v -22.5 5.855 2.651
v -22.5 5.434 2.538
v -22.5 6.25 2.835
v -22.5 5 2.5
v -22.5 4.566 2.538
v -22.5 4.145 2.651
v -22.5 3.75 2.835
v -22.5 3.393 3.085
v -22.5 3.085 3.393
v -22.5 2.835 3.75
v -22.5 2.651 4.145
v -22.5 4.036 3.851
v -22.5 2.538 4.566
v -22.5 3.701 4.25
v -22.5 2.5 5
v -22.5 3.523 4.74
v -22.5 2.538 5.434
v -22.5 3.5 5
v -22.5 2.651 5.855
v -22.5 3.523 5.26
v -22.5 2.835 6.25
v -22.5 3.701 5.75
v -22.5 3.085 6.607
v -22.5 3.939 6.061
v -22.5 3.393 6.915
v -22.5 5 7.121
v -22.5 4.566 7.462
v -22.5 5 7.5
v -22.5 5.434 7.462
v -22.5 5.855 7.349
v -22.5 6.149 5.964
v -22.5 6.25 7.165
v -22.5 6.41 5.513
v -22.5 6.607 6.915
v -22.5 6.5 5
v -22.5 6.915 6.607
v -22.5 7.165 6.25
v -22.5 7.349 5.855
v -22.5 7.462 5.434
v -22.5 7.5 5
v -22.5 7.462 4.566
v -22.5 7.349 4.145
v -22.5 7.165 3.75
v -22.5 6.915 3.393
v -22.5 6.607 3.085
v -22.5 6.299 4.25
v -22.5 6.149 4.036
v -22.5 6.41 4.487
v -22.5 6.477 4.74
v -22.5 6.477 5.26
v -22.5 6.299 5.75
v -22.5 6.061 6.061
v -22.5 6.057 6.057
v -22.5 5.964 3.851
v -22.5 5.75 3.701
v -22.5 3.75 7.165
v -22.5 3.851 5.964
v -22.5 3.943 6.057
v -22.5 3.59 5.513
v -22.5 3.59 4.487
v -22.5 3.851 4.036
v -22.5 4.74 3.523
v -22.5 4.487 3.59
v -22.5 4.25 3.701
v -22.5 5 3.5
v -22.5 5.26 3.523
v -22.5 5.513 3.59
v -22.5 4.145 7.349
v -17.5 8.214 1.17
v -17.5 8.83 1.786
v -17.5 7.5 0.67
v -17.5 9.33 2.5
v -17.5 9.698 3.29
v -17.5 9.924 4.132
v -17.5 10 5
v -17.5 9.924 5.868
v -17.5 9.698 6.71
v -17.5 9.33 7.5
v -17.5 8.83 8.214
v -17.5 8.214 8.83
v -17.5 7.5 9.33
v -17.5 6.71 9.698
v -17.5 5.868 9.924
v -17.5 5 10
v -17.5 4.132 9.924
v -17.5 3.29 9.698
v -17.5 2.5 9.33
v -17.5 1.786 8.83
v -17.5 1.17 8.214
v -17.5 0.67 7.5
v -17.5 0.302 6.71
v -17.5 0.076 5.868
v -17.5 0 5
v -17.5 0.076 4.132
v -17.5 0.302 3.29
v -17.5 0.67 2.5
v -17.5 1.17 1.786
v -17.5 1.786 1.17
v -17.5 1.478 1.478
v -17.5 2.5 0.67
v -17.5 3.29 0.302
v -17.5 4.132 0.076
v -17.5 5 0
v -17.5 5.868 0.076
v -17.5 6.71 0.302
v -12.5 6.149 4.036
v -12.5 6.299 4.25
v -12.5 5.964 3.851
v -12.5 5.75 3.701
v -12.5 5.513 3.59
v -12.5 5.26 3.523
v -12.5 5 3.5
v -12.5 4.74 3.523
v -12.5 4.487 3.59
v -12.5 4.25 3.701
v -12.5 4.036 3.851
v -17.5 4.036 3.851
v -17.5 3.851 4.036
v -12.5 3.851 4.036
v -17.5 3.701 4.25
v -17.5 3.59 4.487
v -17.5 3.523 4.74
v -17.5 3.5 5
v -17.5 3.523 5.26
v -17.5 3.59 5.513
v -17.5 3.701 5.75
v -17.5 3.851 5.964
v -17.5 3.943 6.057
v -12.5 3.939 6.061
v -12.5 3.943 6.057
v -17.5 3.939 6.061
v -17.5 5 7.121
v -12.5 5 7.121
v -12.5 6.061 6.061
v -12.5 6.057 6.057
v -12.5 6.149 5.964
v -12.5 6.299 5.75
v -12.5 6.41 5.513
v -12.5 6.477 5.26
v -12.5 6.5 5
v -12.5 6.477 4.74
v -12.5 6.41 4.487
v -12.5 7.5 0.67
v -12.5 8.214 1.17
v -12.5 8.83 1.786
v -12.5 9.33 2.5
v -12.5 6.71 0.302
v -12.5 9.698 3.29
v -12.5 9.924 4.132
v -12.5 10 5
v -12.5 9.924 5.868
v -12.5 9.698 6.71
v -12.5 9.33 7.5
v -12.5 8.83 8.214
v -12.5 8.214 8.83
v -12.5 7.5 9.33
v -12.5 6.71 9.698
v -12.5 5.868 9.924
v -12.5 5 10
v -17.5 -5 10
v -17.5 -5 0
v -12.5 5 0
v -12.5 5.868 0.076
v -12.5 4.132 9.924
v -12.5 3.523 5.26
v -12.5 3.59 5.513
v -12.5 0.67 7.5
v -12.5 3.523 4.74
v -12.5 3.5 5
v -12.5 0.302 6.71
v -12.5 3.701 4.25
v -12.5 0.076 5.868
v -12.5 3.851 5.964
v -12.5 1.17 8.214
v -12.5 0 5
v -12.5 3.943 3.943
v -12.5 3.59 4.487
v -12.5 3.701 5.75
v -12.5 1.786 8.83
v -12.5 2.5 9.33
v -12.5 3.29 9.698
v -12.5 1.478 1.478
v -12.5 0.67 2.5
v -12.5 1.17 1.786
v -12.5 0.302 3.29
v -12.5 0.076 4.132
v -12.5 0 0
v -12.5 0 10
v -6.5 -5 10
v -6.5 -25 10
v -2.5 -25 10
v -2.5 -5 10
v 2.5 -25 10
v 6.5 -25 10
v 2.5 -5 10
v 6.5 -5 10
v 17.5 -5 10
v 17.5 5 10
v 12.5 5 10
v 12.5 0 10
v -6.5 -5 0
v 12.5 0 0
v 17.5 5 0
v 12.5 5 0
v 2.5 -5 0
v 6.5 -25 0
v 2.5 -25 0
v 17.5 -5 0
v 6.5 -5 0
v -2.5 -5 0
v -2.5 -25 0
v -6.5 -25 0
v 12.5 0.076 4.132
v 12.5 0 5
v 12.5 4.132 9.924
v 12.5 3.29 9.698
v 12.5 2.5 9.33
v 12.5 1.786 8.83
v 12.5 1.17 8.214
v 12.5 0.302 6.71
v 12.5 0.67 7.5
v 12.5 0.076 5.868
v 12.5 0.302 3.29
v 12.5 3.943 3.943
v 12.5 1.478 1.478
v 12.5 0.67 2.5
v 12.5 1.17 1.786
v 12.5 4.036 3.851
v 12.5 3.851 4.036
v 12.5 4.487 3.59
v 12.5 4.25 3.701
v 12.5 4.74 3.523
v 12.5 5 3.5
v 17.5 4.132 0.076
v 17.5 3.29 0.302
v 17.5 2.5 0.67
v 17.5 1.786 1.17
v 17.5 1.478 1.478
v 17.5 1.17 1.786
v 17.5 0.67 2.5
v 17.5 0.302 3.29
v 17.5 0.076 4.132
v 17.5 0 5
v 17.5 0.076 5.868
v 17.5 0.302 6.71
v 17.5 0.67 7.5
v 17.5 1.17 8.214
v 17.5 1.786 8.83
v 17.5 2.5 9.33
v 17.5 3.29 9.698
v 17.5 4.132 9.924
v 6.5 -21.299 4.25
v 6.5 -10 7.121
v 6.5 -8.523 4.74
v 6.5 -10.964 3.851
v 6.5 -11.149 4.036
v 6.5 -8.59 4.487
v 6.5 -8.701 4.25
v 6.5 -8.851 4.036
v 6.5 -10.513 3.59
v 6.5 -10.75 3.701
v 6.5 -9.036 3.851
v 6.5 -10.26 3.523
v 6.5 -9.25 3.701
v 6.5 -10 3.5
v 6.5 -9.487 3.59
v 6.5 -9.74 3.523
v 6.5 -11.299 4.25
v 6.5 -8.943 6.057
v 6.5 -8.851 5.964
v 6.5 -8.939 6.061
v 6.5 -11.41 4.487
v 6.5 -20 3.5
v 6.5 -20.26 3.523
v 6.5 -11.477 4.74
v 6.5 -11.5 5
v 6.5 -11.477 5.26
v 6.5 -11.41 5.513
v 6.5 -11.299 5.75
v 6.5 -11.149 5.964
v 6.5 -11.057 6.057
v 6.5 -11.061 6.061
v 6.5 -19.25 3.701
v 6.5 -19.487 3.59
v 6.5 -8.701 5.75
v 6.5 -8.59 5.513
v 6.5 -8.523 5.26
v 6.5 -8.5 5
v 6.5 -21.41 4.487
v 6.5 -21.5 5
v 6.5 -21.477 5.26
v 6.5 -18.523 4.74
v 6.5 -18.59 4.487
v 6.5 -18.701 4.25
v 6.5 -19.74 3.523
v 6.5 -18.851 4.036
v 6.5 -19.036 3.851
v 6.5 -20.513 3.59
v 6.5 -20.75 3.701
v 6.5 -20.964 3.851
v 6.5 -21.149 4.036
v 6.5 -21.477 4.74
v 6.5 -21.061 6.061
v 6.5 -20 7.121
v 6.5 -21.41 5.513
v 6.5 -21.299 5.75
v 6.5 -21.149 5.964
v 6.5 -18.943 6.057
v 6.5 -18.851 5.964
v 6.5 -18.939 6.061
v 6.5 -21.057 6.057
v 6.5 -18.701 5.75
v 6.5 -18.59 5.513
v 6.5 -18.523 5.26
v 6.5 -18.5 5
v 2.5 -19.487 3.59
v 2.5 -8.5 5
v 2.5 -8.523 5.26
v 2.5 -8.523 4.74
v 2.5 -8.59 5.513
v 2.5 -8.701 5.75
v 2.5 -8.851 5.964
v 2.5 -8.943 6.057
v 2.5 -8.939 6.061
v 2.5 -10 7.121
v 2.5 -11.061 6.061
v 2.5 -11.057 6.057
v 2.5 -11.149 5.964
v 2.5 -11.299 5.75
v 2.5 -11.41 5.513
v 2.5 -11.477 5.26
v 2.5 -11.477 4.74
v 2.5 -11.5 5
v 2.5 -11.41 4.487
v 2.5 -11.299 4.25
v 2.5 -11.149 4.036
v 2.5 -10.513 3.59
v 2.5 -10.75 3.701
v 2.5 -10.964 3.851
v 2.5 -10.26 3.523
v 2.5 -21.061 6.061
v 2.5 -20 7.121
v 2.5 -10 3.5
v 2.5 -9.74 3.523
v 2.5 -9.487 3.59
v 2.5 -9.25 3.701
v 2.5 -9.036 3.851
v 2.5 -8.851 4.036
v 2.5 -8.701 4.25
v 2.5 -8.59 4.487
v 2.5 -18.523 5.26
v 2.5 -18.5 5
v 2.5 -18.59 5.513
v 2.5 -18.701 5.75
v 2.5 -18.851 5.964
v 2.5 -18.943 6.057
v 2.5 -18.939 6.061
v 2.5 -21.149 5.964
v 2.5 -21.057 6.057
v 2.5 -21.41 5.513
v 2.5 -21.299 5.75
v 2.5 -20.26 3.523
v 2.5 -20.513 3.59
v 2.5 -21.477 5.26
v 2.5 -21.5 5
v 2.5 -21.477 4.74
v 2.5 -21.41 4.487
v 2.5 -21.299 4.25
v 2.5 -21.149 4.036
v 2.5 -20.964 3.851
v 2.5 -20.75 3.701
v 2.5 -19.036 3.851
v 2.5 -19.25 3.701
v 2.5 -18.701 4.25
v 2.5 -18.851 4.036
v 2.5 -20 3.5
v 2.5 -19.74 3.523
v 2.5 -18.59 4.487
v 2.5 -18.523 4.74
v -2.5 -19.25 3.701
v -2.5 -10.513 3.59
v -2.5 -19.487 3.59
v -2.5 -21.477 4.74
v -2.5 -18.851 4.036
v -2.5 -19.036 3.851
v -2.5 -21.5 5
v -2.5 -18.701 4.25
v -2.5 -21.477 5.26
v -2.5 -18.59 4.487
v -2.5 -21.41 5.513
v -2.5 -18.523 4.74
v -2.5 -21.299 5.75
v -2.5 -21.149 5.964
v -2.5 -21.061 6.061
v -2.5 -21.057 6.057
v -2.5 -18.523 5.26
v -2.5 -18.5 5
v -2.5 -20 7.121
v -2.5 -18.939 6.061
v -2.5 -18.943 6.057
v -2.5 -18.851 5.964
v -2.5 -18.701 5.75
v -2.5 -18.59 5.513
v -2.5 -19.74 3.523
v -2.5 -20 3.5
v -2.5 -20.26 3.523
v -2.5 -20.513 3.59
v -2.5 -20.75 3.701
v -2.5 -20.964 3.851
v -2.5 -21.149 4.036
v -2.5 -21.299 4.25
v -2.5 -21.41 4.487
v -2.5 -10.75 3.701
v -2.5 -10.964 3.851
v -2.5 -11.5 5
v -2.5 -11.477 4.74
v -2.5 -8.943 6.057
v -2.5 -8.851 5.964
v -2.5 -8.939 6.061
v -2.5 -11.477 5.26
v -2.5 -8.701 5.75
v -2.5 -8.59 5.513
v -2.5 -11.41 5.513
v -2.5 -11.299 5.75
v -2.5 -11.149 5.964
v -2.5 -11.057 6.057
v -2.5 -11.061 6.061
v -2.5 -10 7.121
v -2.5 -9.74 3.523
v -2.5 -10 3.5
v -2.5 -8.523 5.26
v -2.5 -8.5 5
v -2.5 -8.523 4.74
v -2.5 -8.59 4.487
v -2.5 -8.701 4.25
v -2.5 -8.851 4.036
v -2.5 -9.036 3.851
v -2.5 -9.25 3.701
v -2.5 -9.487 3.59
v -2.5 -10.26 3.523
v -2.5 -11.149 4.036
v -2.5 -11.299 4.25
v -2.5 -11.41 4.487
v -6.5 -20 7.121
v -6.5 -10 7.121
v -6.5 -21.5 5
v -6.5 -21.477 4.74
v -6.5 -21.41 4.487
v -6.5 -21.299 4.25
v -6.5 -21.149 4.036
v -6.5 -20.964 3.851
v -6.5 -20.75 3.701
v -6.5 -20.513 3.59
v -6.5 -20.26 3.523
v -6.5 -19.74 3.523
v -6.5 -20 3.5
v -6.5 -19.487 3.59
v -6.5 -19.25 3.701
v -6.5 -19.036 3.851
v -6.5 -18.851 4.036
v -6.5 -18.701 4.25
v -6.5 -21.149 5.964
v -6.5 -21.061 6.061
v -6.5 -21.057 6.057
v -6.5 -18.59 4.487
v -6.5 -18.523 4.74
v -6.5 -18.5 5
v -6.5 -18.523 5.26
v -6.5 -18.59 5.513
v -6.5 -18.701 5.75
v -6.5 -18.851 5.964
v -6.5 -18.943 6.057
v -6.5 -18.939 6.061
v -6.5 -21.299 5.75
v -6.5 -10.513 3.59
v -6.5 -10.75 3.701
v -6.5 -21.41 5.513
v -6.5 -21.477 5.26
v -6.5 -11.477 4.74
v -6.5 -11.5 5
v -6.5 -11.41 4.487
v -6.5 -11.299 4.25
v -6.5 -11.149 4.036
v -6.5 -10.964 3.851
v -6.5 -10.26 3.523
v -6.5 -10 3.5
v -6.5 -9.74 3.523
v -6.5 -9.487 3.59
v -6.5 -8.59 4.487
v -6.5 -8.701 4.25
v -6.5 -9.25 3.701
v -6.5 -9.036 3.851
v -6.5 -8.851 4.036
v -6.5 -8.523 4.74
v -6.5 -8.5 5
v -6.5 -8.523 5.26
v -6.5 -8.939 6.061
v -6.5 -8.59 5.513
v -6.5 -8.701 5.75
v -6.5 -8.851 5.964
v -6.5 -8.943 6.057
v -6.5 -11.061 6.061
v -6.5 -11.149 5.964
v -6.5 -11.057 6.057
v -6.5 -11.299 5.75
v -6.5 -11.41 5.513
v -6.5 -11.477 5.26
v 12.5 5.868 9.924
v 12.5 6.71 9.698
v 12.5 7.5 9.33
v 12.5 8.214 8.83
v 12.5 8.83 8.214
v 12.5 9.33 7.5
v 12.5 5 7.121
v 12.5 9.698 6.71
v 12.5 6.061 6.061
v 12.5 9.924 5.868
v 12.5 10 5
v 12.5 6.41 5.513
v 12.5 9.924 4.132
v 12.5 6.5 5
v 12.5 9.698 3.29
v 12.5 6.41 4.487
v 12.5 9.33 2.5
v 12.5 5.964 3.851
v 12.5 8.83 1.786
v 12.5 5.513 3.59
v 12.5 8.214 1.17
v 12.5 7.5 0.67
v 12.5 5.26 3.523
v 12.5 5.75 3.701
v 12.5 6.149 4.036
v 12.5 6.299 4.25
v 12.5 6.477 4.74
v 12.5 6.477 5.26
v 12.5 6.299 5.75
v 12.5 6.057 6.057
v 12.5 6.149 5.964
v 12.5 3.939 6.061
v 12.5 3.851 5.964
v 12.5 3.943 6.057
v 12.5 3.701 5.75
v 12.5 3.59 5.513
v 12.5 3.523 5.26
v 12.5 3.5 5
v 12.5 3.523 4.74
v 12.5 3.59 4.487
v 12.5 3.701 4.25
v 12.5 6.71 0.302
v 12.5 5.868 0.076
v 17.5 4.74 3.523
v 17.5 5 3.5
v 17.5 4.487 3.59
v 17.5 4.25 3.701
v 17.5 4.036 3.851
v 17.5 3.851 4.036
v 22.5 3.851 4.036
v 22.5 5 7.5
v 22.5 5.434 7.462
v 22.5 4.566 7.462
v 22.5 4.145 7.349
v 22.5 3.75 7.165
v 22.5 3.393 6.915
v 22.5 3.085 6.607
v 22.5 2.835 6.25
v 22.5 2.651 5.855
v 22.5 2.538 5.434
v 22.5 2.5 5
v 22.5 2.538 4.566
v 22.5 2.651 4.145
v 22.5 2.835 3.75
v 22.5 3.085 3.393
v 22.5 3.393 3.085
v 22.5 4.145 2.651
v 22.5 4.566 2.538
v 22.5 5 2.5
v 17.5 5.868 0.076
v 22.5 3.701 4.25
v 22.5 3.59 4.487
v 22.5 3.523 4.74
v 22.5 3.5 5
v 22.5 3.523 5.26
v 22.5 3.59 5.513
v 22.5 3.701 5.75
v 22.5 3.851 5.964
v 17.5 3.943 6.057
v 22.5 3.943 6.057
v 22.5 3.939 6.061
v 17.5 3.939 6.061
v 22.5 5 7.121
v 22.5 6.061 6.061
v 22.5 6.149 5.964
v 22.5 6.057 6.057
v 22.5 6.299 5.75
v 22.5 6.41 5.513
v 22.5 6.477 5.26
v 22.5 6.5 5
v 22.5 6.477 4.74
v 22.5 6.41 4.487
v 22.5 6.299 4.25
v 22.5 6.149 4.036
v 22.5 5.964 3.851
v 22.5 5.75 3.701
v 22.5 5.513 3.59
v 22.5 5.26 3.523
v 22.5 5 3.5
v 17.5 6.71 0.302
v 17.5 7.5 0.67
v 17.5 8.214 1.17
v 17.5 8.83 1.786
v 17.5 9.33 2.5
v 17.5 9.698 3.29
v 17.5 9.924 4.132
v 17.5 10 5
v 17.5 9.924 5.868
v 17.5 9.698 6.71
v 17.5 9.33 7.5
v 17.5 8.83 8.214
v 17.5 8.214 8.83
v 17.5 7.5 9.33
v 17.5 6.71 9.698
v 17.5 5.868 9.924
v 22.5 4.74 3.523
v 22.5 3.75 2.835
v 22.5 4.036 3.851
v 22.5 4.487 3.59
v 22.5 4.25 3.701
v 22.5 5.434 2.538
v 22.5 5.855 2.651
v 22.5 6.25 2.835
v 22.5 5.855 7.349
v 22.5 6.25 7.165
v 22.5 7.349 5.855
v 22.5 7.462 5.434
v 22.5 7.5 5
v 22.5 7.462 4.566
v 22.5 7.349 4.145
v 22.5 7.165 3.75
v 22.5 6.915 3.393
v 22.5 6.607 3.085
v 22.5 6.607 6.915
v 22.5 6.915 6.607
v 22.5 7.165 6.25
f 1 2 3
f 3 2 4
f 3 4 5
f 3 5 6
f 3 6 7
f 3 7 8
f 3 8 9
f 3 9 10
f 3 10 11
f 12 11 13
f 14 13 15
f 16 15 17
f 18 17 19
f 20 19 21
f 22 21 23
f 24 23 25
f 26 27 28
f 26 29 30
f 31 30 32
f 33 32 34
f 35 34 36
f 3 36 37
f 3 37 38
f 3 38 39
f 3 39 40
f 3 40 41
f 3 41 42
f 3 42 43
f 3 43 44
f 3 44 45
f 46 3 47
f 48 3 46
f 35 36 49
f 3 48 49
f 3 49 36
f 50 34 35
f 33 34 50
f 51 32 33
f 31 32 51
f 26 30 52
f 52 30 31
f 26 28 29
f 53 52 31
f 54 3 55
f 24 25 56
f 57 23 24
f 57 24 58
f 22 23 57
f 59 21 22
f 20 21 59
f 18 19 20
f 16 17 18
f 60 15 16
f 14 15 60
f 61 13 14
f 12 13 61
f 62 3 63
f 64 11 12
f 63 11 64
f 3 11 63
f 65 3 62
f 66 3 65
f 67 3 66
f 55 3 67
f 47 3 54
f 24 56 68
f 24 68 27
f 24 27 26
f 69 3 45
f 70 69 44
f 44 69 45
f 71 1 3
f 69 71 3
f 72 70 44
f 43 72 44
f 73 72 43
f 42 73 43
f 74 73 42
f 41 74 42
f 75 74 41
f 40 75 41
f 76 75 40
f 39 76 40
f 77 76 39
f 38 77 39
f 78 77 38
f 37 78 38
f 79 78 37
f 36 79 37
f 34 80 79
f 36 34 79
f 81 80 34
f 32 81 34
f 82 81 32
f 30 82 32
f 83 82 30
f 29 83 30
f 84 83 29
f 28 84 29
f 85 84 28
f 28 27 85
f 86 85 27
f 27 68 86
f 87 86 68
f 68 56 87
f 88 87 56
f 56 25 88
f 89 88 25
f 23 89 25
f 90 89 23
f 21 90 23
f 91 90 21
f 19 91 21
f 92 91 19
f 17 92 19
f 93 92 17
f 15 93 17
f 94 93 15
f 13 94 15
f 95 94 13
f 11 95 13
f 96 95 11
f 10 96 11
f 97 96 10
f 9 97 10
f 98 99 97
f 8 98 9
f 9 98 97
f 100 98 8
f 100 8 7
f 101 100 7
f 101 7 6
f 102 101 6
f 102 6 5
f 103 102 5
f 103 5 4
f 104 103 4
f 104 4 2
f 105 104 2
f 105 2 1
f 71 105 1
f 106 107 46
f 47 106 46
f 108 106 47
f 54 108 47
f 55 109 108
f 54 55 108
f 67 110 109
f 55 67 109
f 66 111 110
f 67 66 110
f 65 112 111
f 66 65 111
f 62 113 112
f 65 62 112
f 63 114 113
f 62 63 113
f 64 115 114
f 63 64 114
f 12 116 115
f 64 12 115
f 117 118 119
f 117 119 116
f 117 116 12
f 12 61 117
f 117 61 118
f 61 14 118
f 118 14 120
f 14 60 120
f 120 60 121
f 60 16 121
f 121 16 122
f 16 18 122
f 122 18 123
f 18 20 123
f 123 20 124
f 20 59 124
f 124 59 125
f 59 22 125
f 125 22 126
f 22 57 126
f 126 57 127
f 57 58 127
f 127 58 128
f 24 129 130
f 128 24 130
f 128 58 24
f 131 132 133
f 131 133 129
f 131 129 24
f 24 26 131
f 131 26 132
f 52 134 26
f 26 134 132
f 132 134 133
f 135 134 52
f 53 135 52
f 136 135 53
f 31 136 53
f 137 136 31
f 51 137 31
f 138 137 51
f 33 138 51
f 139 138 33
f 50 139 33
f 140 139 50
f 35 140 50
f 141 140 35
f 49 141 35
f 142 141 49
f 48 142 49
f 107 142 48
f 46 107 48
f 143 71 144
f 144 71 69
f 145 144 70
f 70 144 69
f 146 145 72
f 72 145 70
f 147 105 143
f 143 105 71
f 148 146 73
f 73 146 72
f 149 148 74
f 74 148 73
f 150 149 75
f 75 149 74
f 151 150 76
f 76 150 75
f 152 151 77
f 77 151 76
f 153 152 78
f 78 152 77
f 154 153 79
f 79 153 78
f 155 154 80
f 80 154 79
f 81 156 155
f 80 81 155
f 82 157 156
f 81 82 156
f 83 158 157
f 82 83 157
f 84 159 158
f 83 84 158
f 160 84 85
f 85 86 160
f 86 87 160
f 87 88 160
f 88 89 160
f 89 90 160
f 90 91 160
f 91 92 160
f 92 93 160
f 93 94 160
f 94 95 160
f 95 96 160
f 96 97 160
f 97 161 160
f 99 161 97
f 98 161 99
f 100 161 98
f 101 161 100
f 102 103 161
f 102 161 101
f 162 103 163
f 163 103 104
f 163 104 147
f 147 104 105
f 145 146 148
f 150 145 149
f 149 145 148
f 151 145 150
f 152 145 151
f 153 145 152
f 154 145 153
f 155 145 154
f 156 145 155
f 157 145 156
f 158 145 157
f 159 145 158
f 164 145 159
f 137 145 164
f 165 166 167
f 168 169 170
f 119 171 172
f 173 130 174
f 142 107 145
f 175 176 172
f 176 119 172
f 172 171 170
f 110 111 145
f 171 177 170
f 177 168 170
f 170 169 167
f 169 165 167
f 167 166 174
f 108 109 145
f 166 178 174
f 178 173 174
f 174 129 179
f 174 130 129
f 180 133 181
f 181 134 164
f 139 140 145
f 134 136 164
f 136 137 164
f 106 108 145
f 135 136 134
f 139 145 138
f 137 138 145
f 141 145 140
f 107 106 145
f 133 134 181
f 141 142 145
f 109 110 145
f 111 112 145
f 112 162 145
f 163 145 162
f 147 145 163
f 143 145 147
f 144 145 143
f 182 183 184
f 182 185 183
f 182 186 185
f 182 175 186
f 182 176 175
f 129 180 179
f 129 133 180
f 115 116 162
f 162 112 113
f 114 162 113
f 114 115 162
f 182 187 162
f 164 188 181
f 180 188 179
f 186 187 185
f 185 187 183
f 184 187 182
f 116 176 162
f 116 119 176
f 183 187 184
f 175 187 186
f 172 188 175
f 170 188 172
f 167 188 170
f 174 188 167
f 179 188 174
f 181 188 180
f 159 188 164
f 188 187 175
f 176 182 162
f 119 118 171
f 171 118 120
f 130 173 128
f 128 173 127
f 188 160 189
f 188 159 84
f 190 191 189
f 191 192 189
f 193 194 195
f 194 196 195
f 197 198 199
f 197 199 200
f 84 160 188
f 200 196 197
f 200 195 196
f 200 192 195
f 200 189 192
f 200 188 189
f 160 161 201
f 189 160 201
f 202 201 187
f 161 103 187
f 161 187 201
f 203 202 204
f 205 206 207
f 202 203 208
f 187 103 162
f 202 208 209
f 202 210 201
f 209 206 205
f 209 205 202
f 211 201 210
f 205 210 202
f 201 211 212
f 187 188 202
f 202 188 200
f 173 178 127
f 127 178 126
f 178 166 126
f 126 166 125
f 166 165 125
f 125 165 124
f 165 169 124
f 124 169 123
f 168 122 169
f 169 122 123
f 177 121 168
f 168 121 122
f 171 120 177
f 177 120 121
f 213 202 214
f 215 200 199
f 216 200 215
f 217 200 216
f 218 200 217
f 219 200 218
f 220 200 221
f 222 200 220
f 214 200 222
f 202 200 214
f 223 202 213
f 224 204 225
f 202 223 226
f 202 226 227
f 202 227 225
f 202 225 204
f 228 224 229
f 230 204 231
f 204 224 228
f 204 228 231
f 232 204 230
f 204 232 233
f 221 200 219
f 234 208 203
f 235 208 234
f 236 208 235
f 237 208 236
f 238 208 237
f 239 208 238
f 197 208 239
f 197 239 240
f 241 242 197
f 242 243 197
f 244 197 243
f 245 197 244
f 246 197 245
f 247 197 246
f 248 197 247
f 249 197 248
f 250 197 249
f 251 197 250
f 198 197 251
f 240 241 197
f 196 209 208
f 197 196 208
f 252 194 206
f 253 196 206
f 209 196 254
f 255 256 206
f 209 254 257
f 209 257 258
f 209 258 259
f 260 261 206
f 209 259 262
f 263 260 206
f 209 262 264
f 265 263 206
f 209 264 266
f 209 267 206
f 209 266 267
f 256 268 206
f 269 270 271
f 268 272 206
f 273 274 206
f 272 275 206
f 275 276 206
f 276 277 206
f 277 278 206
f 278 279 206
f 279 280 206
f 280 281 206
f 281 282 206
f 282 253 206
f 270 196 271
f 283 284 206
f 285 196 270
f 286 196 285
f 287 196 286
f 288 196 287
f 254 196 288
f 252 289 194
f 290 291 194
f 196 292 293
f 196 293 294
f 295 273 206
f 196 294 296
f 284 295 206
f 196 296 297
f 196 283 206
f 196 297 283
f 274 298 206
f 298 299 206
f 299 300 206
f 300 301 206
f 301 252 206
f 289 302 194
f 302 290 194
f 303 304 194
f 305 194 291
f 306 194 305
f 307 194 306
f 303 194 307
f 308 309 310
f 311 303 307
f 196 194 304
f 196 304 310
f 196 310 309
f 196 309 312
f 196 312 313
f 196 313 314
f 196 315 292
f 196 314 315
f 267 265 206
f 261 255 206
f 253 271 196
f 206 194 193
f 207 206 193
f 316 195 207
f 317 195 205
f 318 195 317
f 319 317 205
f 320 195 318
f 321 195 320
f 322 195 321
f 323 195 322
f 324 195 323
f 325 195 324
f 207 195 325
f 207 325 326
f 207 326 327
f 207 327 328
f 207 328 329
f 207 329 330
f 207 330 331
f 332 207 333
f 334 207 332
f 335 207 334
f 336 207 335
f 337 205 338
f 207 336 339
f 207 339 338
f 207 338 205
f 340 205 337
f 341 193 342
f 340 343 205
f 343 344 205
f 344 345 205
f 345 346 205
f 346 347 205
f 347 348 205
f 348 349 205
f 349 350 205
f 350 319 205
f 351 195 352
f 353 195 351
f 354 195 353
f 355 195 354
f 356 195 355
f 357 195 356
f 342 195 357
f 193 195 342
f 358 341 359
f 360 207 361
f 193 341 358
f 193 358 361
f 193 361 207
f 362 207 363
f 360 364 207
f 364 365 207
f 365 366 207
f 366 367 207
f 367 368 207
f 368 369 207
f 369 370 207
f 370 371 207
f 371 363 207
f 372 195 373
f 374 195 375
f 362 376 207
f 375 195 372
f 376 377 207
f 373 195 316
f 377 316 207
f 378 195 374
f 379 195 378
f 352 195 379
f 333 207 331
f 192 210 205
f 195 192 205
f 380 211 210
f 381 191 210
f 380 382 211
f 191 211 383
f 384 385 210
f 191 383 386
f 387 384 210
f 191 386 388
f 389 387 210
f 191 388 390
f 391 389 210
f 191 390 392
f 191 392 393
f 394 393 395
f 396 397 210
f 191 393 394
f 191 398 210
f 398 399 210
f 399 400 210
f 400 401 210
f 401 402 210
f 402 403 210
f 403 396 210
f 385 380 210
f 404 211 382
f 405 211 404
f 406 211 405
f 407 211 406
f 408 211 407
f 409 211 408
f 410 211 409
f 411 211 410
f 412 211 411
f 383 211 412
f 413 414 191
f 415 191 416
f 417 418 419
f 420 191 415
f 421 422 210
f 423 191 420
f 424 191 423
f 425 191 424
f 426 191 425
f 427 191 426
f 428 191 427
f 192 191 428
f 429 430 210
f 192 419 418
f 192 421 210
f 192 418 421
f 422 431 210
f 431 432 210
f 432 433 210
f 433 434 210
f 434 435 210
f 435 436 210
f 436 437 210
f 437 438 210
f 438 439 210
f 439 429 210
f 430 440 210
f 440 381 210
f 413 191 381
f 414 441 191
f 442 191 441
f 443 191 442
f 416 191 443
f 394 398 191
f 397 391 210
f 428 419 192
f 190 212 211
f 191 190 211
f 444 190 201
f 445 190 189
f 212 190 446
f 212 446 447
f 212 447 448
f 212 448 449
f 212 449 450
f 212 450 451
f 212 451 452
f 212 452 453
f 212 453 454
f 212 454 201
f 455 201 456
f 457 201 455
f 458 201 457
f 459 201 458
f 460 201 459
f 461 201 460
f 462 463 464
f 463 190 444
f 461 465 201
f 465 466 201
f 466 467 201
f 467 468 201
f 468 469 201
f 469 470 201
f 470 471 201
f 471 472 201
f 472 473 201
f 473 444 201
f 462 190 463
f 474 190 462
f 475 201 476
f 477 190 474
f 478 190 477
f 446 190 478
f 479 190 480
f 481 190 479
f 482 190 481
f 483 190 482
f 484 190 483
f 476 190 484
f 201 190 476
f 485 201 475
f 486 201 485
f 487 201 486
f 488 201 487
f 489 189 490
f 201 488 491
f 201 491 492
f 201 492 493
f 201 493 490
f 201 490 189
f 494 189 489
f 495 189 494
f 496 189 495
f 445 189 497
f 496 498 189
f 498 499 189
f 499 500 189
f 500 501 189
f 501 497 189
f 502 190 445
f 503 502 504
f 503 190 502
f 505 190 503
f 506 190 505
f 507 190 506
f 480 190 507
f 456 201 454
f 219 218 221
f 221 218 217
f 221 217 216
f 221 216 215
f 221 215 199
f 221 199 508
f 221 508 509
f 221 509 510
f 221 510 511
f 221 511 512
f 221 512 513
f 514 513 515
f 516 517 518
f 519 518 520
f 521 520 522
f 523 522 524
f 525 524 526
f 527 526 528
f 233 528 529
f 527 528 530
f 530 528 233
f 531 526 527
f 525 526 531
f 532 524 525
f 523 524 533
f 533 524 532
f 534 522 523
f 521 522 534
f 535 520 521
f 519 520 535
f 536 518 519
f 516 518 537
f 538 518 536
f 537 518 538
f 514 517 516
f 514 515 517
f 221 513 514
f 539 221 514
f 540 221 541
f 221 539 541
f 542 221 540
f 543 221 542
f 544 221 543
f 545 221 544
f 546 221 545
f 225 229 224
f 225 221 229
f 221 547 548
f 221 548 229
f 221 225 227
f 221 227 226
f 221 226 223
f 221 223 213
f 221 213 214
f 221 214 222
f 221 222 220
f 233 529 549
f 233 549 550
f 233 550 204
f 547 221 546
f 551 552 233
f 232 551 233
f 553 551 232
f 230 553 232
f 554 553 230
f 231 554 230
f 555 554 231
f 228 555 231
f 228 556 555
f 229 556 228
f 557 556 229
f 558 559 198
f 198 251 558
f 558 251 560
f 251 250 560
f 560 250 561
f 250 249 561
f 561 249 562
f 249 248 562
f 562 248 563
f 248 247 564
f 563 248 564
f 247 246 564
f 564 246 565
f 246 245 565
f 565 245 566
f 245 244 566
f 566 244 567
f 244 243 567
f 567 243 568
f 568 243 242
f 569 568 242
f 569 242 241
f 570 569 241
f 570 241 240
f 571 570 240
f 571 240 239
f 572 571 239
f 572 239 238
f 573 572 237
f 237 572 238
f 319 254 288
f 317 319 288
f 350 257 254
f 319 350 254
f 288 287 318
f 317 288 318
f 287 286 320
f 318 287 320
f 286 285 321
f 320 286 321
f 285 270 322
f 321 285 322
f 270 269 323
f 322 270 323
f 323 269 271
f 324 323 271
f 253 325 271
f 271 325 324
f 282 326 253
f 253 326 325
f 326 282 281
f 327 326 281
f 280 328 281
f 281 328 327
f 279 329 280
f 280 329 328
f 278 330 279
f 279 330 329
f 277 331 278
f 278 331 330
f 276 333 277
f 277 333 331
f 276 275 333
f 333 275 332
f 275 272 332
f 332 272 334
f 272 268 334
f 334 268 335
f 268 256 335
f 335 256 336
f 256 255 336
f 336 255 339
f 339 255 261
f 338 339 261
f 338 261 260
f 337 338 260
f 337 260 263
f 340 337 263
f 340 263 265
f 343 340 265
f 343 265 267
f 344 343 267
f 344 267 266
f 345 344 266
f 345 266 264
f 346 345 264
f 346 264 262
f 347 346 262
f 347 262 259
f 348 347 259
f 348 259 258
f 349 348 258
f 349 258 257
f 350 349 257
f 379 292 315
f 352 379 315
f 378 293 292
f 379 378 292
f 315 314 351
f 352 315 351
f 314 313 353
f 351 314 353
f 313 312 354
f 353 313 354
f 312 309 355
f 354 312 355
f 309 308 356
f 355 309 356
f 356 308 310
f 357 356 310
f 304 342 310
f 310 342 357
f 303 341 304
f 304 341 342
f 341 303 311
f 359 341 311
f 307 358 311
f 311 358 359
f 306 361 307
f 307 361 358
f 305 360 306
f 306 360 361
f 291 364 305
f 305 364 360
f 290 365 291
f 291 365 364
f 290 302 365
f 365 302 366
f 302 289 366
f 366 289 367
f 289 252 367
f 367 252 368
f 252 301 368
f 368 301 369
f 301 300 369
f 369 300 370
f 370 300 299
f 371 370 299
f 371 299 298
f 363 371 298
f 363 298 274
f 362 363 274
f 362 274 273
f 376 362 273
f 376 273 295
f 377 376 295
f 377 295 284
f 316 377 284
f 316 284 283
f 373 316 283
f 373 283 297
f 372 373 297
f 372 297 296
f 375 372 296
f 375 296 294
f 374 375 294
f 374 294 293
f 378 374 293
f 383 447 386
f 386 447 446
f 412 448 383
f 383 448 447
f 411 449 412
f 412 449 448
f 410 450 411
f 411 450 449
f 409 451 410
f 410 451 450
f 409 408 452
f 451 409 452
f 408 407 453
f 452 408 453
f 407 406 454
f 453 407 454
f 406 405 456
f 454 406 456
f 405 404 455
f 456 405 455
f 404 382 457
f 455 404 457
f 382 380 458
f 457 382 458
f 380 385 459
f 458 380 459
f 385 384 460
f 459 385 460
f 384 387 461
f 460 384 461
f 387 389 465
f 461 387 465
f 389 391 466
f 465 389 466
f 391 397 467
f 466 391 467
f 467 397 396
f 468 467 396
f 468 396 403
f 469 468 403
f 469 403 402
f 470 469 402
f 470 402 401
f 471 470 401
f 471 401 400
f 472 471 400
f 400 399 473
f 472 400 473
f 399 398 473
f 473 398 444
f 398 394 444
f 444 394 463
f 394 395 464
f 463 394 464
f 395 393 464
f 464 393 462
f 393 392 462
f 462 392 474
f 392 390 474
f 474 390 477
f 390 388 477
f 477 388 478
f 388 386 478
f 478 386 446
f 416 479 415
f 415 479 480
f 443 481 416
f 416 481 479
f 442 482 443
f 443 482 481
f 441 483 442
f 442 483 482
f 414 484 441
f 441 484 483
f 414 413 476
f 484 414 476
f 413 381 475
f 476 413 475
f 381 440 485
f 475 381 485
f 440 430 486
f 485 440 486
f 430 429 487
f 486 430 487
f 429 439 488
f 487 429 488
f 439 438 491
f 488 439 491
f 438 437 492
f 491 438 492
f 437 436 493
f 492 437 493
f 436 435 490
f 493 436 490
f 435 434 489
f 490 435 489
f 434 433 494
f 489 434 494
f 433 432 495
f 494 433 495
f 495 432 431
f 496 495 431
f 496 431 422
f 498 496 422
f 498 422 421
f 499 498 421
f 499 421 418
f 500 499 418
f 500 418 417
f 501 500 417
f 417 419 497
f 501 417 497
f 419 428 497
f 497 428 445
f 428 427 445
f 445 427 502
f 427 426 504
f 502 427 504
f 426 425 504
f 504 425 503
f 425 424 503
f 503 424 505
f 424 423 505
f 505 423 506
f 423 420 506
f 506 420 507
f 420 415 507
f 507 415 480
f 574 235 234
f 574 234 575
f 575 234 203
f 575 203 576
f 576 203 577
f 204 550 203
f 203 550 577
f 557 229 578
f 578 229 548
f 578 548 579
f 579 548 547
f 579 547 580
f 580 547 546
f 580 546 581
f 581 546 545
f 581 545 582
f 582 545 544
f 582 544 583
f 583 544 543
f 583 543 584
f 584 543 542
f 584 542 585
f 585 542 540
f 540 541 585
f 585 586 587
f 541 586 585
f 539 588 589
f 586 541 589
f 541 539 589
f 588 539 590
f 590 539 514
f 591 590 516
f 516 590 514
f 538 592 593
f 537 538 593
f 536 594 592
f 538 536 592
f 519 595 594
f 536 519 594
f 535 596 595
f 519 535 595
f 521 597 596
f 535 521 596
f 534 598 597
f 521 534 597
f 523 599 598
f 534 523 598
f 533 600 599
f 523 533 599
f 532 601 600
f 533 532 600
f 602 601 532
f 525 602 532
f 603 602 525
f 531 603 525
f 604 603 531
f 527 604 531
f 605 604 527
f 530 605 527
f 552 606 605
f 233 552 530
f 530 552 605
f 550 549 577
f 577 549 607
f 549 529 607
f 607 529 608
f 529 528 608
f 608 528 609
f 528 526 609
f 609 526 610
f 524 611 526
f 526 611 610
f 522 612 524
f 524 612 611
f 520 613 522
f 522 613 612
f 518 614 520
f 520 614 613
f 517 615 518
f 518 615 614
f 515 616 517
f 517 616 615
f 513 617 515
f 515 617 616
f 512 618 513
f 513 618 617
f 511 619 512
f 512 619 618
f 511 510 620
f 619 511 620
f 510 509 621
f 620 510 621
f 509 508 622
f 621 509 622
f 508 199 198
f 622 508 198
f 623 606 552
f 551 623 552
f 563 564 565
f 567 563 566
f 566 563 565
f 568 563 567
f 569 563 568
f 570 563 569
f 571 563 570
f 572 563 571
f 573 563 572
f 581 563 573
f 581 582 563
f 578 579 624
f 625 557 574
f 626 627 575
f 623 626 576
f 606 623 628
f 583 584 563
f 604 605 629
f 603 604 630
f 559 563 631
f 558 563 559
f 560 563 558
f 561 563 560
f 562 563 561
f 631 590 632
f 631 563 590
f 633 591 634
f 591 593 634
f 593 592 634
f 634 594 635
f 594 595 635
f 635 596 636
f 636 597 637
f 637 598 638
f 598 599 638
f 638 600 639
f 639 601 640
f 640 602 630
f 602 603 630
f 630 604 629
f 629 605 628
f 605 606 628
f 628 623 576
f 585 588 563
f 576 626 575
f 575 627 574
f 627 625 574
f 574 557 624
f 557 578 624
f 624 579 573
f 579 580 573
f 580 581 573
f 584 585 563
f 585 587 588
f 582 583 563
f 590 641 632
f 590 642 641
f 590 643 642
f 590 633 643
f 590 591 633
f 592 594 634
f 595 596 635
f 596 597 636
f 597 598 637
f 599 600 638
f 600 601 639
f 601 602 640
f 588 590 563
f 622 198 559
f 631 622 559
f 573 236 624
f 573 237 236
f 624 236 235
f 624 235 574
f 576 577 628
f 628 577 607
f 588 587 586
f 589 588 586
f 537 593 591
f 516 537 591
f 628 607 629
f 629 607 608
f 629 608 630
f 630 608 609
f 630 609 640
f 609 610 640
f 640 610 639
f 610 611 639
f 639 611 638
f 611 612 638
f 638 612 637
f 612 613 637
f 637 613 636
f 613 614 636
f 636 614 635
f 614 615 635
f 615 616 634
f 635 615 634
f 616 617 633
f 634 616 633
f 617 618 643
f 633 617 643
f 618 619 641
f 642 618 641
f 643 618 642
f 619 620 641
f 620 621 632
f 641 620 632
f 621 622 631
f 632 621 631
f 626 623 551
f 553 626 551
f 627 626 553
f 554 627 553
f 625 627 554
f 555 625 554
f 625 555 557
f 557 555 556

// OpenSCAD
// file: lib.scad
$fn=36;


module true_hole (d=1, L=10)
{
	union() {
		rotate(a=90, v=[1,0,0])
		cylinder(center=true, r=d/2, h=L);

		translate([0,0,d/2*sqrt(2)/2])
		rotate(a=45, v=[0,1,0])
		rotate(a=90, v=[1,0,0])
		cube(center=true, size=[d/2, d/2, L]);

	}
}

module tricube(w=1, h=1, l=1)
{
	translate([0, w, 0]) rotate(a=90, v=[1,0,0])
	linear_extrude(height=w) {
		polygon(points=[[0,0], [0,h], [l,0]]);
	}
}


module arc(h=1, r1=1, r2=2, a=90)
{
	difference() {
		cylinder(r=r2, h=h);
		union() {
				cylinder(r=r1, h=h);
				translate([0,-r2,0]) mirror([1,0,0]) cube(size=[r2,r2*2,h]);
				rotate(a=90-a, v=[0,0,1]) translate([-r2,0,0]) mirror([0,1,0]) cube(size=[r2*2,r2,h]);
		}
	}

}


module subarc(r=1, h=1)
{
	translate([r,r,0])
	rotate(a=180, v=[0,0,1])
	difference() {
		cube(size=[r,r,h]);
		cylinder(r=r, h=h);
	}
}
// file: delta_mount_module.scad
include <lib.scad>;

// ширина промежутка между наружными краями конусов
delta_width=45;

// диаметр отверстия
bolt_d = 3;
bolt_r = bolt_d/2;

// цилиндр
cyl_w = 5;
cyl_d = 10;
cyl_r = cyl_d/2;

// конус
con_w = 5;
con_r = bolt_r+1;
con_d = con_r*2;


module mount()
{
	w=cyl_w+con_w+2;
	difference() {
		rotate(a=90, v=[1,0,0]) union() {
				translate([0,0,-cyl_w/2]) cylinder(center=true, r=cyl_r, h=cyl_w);
				translate([0,0,con_w/2]) cylinder(center=true, r1=cyl_r, r2=con_r, h=con_w);
		}
		translate([0,-(con_w-cyl_w)/2-1,0]) true_hole(d=bolt_d, L=w);
	}
};


module delta_mount() {
	w=delta_width/2-con_w;
	translate([w, 0, 0]) rotate(a=90, v=[0,0,1]) mount();
	mirror([1,0,0]) translate([w, 0, 0]) rotate(a=90, v=[0,0,1]) mount();
}
// main file
include <delta_mount_module.scad>;

arm_w=5;

H=cyl_d;

W=delta_width-2*(cyl_w+con_w);

L=20;
T=4;

hole_d=3;

S=10;



module s1() 
{

//	Can't export to STL:
//	Simple:         no
//  Object isn't a valid 2-manifold

/*
	translate([delta_width/2-cyl_w-con_w, 0,0]) 
	rotate(a=-90, v=[0,0,1]) 
	arc(a=90, h=H, r2=cyl_w, r1=0);

	translate([delta_width/2-con_w, 0,0])
	rotate(a=90, v=[0,0,1])
	tricube(l=cyl_r, w=cyl_w, h=cyl_r);

	translate([delta_width/2-cyl_w-con_w, 0,H])
	rotate(a=180, v=[0,1,0])
	rotate(a=90, v=[0,0,1])
	tricube(l=cyl_r, w=cyl_w, h=cyl_r);
*/

	translate([W/2,-cyl_r,0])
	cube(size=[cyl_w, cyl_w+cyl_r, H]);
} 

module s2() 
{
	translate([-arm_w/2, -L-cyl_w, 0])
	rotate(a=90, v=[0,0,1])
	cube(size=[L, T, H]);
}


difference() {
	union() {
		
		translate([0,cyl_r,cyl_r]) 
		delta_mount();

		s1();
		mirror([1,0,0]) s1();

		translate([-W/2, -cyl_w, 0])
		cube(size=[W, cyl_w, H]);

		s2();
		mirror([1,0,0]) s2();

	}
	union() {
	
		translate([0, cyl_r, cyl_r])
		rotate(a=90, v=[0,0,1])
		true_hole(d=hole_d, L=delta_width+10);

		translate([0, -cyl_w-L/4, cyl_r])
		rotate(a=90, v=[0,0,1])
		true_hole(d=hole_d, L=delta_width);

		translate([0, -cyl_w-L/4-S, cyl_r])
		rotate(a=90, v=[0,0,1])
		true_hole(d=hole_d, L=delta_width);
	}
}
